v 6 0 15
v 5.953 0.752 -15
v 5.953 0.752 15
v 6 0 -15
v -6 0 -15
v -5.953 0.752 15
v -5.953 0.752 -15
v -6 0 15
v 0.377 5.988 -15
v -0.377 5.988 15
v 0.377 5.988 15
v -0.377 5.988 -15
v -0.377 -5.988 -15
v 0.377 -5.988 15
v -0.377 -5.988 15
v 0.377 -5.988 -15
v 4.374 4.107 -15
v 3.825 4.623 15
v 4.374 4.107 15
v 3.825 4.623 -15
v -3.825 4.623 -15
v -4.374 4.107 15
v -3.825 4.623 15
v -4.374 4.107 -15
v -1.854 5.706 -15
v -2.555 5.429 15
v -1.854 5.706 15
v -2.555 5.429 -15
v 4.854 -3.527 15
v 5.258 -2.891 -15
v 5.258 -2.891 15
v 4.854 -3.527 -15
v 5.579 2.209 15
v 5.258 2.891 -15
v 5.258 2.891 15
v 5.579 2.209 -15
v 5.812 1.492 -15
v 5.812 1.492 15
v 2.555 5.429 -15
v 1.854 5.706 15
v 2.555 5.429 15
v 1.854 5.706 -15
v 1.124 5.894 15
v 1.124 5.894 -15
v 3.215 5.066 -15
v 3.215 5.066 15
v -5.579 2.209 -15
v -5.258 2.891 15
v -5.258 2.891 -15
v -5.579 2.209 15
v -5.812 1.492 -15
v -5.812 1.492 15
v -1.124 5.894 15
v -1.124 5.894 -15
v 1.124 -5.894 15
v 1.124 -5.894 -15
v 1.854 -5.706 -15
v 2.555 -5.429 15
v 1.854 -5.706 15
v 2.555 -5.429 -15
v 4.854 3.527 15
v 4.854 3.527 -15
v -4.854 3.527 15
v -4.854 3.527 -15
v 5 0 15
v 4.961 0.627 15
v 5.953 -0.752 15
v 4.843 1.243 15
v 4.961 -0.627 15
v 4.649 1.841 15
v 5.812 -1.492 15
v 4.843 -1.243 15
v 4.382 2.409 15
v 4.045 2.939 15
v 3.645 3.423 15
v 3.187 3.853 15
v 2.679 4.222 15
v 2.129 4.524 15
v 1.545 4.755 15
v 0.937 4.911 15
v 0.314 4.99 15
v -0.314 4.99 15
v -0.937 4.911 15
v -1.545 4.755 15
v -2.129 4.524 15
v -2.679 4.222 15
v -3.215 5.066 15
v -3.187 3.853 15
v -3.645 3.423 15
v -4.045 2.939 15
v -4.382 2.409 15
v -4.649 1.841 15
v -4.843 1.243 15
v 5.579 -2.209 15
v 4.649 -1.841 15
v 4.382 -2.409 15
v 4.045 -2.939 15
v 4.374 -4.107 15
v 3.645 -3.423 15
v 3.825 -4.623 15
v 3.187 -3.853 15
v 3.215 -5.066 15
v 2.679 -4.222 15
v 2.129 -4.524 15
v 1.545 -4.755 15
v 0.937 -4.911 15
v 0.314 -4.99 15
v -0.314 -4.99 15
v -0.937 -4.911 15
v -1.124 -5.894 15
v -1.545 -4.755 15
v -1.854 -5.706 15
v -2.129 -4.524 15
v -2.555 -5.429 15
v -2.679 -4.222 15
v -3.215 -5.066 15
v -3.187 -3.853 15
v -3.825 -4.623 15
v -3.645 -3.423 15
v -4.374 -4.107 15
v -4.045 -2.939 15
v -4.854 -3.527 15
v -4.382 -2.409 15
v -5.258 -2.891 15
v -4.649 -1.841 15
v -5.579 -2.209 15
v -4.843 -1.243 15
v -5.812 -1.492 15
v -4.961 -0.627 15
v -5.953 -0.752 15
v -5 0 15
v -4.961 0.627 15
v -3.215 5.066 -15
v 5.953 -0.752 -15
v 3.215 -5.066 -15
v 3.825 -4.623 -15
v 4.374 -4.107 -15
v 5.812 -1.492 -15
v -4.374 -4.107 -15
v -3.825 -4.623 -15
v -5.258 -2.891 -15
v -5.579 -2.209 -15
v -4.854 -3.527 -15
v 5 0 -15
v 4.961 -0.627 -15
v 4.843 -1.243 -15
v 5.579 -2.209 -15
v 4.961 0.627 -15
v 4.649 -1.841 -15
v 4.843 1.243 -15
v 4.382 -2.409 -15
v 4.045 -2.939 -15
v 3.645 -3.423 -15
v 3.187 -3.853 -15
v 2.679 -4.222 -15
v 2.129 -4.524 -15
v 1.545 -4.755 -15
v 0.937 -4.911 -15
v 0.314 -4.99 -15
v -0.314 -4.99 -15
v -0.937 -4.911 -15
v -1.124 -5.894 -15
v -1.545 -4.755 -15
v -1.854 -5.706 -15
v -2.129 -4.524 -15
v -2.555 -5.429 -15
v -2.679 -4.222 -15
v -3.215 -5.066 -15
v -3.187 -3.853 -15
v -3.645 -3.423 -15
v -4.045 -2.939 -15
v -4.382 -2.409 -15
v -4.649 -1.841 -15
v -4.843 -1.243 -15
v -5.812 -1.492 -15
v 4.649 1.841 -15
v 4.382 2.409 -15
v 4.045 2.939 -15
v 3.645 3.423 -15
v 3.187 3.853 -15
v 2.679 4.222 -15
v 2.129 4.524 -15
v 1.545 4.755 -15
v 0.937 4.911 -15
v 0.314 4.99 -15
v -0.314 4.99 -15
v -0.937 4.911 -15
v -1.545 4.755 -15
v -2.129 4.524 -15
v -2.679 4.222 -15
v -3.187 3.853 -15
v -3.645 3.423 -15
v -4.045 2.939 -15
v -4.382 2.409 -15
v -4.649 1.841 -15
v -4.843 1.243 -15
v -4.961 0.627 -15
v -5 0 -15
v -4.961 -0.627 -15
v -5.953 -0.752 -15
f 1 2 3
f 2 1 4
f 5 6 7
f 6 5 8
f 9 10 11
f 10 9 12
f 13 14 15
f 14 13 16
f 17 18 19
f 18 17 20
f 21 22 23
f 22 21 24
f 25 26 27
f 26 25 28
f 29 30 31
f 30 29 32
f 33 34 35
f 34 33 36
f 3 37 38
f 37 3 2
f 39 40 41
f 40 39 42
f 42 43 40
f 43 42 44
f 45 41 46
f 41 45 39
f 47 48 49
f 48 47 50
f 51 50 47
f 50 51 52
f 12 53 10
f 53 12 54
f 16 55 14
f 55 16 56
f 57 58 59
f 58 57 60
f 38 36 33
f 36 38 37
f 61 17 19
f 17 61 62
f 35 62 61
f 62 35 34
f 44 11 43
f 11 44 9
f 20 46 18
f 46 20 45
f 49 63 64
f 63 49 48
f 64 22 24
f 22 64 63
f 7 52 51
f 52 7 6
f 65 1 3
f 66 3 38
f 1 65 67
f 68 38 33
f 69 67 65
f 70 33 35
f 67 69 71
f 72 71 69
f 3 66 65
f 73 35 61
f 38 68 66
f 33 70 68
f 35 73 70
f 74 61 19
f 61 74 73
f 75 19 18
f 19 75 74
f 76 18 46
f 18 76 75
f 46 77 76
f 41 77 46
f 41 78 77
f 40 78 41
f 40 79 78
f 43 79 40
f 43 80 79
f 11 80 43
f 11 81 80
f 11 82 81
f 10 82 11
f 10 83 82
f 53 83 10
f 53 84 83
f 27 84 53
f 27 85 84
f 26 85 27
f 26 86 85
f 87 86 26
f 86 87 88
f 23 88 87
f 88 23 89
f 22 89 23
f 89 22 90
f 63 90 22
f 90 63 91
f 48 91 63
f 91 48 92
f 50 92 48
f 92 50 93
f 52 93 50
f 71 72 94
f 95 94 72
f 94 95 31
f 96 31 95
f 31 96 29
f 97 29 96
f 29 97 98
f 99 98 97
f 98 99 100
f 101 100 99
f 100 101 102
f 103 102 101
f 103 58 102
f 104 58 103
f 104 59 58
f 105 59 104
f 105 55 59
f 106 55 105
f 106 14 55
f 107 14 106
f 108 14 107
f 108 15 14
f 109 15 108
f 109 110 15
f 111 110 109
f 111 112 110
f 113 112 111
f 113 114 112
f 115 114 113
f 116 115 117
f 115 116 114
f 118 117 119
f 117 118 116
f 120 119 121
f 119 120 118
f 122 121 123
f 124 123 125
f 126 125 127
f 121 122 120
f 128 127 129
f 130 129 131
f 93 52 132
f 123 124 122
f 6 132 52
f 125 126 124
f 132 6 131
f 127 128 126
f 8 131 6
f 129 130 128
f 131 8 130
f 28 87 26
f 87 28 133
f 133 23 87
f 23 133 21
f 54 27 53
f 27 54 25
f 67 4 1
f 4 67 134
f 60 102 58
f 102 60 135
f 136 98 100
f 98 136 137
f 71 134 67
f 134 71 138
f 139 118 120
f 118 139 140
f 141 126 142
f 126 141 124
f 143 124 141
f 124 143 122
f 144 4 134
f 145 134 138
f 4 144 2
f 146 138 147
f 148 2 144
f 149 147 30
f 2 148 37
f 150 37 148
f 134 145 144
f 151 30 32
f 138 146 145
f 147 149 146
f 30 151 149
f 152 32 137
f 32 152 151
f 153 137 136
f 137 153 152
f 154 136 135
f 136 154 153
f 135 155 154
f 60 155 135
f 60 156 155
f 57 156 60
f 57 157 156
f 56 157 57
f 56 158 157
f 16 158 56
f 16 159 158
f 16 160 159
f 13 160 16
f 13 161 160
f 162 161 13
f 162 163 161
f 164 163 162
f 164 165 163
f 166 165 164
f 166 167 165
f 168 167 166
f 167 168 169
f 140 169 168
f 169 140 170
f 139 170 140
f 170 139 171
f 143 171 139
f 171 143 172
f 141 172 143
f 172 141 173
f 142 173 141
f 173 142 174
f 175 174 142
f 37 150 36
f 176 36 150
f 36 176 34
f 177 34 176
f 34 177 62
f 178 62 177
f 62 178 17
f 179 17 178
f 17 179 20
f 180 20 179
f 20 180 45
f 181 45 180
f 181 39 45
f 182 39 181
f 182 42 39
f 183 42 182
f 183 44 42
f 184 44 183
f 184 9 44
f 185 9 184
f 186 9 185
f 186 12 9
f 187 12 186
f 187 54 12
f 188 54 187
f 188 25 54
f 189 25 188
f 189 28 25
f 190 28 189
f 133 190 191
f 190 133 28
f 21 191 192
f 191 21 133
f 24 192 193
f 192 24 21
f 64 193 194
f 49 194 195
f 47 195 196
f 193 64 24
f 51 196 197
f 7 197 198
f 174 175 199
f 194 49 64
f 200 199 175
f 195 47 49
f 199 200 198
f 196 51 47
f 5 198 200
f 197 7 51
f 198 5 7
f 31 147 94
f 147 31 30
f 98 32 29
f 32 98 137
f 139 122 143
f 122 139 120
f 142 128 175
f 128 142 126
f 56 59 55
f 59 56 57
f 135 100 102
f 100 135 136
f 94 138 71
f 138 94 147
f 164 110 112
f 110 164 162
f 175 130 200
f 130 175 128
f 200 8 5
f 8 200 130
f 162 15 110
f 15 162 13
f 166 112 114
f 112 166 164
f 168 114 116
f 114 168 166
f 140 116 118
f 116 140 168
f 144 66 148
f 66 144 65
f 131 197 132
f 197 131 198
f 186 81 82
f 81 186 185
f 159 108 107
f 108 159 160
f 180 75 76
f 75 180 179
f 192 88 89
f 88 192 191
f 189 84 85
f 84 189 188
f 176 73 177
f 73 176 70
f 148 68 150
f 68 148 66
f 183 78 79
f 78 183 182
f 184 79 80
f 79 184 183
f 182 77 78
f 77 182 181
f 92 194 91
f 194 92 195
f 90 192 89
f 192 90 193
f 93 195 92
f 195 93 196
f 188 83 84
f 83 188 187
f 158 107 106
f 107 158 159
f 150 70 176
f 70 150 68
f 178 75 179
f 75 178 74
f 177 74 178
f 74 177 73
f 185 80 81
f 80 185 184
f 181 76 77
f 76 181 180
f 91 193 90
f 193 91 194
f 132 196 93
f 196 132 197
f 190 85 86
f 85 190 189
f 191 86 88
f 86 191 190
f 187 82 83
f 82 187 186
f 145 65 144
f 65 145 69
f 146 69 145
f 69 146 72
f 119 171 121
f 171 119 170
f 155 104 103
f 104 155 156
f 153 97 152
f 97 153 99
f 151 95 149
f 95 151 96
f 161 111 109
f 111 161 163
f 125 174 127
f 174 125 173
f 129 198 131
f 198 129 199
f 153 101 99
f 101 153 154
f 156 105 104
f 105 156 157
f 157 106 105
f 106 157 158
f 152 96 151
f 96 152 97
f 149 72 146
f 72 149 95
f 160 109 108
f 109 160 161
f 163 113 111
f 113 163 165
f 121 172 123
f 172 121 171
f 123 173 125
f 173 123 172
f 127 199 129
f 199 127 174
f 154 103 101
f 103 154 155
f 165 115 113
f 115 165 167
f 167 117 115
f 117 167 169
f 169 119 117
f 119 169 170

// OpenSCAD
$fn = 50;


difference() {
	union() {
		translate(v = [0, 0, -15.0000000000]) {
			cylinder(h = 30, r = 6.0000000000);
		}
	}
	union() {
		translate(v = [0, 0, -100.0000000000]) {
			cylinder(h = 200, r = 5.0000000000);
		}
	}
}
